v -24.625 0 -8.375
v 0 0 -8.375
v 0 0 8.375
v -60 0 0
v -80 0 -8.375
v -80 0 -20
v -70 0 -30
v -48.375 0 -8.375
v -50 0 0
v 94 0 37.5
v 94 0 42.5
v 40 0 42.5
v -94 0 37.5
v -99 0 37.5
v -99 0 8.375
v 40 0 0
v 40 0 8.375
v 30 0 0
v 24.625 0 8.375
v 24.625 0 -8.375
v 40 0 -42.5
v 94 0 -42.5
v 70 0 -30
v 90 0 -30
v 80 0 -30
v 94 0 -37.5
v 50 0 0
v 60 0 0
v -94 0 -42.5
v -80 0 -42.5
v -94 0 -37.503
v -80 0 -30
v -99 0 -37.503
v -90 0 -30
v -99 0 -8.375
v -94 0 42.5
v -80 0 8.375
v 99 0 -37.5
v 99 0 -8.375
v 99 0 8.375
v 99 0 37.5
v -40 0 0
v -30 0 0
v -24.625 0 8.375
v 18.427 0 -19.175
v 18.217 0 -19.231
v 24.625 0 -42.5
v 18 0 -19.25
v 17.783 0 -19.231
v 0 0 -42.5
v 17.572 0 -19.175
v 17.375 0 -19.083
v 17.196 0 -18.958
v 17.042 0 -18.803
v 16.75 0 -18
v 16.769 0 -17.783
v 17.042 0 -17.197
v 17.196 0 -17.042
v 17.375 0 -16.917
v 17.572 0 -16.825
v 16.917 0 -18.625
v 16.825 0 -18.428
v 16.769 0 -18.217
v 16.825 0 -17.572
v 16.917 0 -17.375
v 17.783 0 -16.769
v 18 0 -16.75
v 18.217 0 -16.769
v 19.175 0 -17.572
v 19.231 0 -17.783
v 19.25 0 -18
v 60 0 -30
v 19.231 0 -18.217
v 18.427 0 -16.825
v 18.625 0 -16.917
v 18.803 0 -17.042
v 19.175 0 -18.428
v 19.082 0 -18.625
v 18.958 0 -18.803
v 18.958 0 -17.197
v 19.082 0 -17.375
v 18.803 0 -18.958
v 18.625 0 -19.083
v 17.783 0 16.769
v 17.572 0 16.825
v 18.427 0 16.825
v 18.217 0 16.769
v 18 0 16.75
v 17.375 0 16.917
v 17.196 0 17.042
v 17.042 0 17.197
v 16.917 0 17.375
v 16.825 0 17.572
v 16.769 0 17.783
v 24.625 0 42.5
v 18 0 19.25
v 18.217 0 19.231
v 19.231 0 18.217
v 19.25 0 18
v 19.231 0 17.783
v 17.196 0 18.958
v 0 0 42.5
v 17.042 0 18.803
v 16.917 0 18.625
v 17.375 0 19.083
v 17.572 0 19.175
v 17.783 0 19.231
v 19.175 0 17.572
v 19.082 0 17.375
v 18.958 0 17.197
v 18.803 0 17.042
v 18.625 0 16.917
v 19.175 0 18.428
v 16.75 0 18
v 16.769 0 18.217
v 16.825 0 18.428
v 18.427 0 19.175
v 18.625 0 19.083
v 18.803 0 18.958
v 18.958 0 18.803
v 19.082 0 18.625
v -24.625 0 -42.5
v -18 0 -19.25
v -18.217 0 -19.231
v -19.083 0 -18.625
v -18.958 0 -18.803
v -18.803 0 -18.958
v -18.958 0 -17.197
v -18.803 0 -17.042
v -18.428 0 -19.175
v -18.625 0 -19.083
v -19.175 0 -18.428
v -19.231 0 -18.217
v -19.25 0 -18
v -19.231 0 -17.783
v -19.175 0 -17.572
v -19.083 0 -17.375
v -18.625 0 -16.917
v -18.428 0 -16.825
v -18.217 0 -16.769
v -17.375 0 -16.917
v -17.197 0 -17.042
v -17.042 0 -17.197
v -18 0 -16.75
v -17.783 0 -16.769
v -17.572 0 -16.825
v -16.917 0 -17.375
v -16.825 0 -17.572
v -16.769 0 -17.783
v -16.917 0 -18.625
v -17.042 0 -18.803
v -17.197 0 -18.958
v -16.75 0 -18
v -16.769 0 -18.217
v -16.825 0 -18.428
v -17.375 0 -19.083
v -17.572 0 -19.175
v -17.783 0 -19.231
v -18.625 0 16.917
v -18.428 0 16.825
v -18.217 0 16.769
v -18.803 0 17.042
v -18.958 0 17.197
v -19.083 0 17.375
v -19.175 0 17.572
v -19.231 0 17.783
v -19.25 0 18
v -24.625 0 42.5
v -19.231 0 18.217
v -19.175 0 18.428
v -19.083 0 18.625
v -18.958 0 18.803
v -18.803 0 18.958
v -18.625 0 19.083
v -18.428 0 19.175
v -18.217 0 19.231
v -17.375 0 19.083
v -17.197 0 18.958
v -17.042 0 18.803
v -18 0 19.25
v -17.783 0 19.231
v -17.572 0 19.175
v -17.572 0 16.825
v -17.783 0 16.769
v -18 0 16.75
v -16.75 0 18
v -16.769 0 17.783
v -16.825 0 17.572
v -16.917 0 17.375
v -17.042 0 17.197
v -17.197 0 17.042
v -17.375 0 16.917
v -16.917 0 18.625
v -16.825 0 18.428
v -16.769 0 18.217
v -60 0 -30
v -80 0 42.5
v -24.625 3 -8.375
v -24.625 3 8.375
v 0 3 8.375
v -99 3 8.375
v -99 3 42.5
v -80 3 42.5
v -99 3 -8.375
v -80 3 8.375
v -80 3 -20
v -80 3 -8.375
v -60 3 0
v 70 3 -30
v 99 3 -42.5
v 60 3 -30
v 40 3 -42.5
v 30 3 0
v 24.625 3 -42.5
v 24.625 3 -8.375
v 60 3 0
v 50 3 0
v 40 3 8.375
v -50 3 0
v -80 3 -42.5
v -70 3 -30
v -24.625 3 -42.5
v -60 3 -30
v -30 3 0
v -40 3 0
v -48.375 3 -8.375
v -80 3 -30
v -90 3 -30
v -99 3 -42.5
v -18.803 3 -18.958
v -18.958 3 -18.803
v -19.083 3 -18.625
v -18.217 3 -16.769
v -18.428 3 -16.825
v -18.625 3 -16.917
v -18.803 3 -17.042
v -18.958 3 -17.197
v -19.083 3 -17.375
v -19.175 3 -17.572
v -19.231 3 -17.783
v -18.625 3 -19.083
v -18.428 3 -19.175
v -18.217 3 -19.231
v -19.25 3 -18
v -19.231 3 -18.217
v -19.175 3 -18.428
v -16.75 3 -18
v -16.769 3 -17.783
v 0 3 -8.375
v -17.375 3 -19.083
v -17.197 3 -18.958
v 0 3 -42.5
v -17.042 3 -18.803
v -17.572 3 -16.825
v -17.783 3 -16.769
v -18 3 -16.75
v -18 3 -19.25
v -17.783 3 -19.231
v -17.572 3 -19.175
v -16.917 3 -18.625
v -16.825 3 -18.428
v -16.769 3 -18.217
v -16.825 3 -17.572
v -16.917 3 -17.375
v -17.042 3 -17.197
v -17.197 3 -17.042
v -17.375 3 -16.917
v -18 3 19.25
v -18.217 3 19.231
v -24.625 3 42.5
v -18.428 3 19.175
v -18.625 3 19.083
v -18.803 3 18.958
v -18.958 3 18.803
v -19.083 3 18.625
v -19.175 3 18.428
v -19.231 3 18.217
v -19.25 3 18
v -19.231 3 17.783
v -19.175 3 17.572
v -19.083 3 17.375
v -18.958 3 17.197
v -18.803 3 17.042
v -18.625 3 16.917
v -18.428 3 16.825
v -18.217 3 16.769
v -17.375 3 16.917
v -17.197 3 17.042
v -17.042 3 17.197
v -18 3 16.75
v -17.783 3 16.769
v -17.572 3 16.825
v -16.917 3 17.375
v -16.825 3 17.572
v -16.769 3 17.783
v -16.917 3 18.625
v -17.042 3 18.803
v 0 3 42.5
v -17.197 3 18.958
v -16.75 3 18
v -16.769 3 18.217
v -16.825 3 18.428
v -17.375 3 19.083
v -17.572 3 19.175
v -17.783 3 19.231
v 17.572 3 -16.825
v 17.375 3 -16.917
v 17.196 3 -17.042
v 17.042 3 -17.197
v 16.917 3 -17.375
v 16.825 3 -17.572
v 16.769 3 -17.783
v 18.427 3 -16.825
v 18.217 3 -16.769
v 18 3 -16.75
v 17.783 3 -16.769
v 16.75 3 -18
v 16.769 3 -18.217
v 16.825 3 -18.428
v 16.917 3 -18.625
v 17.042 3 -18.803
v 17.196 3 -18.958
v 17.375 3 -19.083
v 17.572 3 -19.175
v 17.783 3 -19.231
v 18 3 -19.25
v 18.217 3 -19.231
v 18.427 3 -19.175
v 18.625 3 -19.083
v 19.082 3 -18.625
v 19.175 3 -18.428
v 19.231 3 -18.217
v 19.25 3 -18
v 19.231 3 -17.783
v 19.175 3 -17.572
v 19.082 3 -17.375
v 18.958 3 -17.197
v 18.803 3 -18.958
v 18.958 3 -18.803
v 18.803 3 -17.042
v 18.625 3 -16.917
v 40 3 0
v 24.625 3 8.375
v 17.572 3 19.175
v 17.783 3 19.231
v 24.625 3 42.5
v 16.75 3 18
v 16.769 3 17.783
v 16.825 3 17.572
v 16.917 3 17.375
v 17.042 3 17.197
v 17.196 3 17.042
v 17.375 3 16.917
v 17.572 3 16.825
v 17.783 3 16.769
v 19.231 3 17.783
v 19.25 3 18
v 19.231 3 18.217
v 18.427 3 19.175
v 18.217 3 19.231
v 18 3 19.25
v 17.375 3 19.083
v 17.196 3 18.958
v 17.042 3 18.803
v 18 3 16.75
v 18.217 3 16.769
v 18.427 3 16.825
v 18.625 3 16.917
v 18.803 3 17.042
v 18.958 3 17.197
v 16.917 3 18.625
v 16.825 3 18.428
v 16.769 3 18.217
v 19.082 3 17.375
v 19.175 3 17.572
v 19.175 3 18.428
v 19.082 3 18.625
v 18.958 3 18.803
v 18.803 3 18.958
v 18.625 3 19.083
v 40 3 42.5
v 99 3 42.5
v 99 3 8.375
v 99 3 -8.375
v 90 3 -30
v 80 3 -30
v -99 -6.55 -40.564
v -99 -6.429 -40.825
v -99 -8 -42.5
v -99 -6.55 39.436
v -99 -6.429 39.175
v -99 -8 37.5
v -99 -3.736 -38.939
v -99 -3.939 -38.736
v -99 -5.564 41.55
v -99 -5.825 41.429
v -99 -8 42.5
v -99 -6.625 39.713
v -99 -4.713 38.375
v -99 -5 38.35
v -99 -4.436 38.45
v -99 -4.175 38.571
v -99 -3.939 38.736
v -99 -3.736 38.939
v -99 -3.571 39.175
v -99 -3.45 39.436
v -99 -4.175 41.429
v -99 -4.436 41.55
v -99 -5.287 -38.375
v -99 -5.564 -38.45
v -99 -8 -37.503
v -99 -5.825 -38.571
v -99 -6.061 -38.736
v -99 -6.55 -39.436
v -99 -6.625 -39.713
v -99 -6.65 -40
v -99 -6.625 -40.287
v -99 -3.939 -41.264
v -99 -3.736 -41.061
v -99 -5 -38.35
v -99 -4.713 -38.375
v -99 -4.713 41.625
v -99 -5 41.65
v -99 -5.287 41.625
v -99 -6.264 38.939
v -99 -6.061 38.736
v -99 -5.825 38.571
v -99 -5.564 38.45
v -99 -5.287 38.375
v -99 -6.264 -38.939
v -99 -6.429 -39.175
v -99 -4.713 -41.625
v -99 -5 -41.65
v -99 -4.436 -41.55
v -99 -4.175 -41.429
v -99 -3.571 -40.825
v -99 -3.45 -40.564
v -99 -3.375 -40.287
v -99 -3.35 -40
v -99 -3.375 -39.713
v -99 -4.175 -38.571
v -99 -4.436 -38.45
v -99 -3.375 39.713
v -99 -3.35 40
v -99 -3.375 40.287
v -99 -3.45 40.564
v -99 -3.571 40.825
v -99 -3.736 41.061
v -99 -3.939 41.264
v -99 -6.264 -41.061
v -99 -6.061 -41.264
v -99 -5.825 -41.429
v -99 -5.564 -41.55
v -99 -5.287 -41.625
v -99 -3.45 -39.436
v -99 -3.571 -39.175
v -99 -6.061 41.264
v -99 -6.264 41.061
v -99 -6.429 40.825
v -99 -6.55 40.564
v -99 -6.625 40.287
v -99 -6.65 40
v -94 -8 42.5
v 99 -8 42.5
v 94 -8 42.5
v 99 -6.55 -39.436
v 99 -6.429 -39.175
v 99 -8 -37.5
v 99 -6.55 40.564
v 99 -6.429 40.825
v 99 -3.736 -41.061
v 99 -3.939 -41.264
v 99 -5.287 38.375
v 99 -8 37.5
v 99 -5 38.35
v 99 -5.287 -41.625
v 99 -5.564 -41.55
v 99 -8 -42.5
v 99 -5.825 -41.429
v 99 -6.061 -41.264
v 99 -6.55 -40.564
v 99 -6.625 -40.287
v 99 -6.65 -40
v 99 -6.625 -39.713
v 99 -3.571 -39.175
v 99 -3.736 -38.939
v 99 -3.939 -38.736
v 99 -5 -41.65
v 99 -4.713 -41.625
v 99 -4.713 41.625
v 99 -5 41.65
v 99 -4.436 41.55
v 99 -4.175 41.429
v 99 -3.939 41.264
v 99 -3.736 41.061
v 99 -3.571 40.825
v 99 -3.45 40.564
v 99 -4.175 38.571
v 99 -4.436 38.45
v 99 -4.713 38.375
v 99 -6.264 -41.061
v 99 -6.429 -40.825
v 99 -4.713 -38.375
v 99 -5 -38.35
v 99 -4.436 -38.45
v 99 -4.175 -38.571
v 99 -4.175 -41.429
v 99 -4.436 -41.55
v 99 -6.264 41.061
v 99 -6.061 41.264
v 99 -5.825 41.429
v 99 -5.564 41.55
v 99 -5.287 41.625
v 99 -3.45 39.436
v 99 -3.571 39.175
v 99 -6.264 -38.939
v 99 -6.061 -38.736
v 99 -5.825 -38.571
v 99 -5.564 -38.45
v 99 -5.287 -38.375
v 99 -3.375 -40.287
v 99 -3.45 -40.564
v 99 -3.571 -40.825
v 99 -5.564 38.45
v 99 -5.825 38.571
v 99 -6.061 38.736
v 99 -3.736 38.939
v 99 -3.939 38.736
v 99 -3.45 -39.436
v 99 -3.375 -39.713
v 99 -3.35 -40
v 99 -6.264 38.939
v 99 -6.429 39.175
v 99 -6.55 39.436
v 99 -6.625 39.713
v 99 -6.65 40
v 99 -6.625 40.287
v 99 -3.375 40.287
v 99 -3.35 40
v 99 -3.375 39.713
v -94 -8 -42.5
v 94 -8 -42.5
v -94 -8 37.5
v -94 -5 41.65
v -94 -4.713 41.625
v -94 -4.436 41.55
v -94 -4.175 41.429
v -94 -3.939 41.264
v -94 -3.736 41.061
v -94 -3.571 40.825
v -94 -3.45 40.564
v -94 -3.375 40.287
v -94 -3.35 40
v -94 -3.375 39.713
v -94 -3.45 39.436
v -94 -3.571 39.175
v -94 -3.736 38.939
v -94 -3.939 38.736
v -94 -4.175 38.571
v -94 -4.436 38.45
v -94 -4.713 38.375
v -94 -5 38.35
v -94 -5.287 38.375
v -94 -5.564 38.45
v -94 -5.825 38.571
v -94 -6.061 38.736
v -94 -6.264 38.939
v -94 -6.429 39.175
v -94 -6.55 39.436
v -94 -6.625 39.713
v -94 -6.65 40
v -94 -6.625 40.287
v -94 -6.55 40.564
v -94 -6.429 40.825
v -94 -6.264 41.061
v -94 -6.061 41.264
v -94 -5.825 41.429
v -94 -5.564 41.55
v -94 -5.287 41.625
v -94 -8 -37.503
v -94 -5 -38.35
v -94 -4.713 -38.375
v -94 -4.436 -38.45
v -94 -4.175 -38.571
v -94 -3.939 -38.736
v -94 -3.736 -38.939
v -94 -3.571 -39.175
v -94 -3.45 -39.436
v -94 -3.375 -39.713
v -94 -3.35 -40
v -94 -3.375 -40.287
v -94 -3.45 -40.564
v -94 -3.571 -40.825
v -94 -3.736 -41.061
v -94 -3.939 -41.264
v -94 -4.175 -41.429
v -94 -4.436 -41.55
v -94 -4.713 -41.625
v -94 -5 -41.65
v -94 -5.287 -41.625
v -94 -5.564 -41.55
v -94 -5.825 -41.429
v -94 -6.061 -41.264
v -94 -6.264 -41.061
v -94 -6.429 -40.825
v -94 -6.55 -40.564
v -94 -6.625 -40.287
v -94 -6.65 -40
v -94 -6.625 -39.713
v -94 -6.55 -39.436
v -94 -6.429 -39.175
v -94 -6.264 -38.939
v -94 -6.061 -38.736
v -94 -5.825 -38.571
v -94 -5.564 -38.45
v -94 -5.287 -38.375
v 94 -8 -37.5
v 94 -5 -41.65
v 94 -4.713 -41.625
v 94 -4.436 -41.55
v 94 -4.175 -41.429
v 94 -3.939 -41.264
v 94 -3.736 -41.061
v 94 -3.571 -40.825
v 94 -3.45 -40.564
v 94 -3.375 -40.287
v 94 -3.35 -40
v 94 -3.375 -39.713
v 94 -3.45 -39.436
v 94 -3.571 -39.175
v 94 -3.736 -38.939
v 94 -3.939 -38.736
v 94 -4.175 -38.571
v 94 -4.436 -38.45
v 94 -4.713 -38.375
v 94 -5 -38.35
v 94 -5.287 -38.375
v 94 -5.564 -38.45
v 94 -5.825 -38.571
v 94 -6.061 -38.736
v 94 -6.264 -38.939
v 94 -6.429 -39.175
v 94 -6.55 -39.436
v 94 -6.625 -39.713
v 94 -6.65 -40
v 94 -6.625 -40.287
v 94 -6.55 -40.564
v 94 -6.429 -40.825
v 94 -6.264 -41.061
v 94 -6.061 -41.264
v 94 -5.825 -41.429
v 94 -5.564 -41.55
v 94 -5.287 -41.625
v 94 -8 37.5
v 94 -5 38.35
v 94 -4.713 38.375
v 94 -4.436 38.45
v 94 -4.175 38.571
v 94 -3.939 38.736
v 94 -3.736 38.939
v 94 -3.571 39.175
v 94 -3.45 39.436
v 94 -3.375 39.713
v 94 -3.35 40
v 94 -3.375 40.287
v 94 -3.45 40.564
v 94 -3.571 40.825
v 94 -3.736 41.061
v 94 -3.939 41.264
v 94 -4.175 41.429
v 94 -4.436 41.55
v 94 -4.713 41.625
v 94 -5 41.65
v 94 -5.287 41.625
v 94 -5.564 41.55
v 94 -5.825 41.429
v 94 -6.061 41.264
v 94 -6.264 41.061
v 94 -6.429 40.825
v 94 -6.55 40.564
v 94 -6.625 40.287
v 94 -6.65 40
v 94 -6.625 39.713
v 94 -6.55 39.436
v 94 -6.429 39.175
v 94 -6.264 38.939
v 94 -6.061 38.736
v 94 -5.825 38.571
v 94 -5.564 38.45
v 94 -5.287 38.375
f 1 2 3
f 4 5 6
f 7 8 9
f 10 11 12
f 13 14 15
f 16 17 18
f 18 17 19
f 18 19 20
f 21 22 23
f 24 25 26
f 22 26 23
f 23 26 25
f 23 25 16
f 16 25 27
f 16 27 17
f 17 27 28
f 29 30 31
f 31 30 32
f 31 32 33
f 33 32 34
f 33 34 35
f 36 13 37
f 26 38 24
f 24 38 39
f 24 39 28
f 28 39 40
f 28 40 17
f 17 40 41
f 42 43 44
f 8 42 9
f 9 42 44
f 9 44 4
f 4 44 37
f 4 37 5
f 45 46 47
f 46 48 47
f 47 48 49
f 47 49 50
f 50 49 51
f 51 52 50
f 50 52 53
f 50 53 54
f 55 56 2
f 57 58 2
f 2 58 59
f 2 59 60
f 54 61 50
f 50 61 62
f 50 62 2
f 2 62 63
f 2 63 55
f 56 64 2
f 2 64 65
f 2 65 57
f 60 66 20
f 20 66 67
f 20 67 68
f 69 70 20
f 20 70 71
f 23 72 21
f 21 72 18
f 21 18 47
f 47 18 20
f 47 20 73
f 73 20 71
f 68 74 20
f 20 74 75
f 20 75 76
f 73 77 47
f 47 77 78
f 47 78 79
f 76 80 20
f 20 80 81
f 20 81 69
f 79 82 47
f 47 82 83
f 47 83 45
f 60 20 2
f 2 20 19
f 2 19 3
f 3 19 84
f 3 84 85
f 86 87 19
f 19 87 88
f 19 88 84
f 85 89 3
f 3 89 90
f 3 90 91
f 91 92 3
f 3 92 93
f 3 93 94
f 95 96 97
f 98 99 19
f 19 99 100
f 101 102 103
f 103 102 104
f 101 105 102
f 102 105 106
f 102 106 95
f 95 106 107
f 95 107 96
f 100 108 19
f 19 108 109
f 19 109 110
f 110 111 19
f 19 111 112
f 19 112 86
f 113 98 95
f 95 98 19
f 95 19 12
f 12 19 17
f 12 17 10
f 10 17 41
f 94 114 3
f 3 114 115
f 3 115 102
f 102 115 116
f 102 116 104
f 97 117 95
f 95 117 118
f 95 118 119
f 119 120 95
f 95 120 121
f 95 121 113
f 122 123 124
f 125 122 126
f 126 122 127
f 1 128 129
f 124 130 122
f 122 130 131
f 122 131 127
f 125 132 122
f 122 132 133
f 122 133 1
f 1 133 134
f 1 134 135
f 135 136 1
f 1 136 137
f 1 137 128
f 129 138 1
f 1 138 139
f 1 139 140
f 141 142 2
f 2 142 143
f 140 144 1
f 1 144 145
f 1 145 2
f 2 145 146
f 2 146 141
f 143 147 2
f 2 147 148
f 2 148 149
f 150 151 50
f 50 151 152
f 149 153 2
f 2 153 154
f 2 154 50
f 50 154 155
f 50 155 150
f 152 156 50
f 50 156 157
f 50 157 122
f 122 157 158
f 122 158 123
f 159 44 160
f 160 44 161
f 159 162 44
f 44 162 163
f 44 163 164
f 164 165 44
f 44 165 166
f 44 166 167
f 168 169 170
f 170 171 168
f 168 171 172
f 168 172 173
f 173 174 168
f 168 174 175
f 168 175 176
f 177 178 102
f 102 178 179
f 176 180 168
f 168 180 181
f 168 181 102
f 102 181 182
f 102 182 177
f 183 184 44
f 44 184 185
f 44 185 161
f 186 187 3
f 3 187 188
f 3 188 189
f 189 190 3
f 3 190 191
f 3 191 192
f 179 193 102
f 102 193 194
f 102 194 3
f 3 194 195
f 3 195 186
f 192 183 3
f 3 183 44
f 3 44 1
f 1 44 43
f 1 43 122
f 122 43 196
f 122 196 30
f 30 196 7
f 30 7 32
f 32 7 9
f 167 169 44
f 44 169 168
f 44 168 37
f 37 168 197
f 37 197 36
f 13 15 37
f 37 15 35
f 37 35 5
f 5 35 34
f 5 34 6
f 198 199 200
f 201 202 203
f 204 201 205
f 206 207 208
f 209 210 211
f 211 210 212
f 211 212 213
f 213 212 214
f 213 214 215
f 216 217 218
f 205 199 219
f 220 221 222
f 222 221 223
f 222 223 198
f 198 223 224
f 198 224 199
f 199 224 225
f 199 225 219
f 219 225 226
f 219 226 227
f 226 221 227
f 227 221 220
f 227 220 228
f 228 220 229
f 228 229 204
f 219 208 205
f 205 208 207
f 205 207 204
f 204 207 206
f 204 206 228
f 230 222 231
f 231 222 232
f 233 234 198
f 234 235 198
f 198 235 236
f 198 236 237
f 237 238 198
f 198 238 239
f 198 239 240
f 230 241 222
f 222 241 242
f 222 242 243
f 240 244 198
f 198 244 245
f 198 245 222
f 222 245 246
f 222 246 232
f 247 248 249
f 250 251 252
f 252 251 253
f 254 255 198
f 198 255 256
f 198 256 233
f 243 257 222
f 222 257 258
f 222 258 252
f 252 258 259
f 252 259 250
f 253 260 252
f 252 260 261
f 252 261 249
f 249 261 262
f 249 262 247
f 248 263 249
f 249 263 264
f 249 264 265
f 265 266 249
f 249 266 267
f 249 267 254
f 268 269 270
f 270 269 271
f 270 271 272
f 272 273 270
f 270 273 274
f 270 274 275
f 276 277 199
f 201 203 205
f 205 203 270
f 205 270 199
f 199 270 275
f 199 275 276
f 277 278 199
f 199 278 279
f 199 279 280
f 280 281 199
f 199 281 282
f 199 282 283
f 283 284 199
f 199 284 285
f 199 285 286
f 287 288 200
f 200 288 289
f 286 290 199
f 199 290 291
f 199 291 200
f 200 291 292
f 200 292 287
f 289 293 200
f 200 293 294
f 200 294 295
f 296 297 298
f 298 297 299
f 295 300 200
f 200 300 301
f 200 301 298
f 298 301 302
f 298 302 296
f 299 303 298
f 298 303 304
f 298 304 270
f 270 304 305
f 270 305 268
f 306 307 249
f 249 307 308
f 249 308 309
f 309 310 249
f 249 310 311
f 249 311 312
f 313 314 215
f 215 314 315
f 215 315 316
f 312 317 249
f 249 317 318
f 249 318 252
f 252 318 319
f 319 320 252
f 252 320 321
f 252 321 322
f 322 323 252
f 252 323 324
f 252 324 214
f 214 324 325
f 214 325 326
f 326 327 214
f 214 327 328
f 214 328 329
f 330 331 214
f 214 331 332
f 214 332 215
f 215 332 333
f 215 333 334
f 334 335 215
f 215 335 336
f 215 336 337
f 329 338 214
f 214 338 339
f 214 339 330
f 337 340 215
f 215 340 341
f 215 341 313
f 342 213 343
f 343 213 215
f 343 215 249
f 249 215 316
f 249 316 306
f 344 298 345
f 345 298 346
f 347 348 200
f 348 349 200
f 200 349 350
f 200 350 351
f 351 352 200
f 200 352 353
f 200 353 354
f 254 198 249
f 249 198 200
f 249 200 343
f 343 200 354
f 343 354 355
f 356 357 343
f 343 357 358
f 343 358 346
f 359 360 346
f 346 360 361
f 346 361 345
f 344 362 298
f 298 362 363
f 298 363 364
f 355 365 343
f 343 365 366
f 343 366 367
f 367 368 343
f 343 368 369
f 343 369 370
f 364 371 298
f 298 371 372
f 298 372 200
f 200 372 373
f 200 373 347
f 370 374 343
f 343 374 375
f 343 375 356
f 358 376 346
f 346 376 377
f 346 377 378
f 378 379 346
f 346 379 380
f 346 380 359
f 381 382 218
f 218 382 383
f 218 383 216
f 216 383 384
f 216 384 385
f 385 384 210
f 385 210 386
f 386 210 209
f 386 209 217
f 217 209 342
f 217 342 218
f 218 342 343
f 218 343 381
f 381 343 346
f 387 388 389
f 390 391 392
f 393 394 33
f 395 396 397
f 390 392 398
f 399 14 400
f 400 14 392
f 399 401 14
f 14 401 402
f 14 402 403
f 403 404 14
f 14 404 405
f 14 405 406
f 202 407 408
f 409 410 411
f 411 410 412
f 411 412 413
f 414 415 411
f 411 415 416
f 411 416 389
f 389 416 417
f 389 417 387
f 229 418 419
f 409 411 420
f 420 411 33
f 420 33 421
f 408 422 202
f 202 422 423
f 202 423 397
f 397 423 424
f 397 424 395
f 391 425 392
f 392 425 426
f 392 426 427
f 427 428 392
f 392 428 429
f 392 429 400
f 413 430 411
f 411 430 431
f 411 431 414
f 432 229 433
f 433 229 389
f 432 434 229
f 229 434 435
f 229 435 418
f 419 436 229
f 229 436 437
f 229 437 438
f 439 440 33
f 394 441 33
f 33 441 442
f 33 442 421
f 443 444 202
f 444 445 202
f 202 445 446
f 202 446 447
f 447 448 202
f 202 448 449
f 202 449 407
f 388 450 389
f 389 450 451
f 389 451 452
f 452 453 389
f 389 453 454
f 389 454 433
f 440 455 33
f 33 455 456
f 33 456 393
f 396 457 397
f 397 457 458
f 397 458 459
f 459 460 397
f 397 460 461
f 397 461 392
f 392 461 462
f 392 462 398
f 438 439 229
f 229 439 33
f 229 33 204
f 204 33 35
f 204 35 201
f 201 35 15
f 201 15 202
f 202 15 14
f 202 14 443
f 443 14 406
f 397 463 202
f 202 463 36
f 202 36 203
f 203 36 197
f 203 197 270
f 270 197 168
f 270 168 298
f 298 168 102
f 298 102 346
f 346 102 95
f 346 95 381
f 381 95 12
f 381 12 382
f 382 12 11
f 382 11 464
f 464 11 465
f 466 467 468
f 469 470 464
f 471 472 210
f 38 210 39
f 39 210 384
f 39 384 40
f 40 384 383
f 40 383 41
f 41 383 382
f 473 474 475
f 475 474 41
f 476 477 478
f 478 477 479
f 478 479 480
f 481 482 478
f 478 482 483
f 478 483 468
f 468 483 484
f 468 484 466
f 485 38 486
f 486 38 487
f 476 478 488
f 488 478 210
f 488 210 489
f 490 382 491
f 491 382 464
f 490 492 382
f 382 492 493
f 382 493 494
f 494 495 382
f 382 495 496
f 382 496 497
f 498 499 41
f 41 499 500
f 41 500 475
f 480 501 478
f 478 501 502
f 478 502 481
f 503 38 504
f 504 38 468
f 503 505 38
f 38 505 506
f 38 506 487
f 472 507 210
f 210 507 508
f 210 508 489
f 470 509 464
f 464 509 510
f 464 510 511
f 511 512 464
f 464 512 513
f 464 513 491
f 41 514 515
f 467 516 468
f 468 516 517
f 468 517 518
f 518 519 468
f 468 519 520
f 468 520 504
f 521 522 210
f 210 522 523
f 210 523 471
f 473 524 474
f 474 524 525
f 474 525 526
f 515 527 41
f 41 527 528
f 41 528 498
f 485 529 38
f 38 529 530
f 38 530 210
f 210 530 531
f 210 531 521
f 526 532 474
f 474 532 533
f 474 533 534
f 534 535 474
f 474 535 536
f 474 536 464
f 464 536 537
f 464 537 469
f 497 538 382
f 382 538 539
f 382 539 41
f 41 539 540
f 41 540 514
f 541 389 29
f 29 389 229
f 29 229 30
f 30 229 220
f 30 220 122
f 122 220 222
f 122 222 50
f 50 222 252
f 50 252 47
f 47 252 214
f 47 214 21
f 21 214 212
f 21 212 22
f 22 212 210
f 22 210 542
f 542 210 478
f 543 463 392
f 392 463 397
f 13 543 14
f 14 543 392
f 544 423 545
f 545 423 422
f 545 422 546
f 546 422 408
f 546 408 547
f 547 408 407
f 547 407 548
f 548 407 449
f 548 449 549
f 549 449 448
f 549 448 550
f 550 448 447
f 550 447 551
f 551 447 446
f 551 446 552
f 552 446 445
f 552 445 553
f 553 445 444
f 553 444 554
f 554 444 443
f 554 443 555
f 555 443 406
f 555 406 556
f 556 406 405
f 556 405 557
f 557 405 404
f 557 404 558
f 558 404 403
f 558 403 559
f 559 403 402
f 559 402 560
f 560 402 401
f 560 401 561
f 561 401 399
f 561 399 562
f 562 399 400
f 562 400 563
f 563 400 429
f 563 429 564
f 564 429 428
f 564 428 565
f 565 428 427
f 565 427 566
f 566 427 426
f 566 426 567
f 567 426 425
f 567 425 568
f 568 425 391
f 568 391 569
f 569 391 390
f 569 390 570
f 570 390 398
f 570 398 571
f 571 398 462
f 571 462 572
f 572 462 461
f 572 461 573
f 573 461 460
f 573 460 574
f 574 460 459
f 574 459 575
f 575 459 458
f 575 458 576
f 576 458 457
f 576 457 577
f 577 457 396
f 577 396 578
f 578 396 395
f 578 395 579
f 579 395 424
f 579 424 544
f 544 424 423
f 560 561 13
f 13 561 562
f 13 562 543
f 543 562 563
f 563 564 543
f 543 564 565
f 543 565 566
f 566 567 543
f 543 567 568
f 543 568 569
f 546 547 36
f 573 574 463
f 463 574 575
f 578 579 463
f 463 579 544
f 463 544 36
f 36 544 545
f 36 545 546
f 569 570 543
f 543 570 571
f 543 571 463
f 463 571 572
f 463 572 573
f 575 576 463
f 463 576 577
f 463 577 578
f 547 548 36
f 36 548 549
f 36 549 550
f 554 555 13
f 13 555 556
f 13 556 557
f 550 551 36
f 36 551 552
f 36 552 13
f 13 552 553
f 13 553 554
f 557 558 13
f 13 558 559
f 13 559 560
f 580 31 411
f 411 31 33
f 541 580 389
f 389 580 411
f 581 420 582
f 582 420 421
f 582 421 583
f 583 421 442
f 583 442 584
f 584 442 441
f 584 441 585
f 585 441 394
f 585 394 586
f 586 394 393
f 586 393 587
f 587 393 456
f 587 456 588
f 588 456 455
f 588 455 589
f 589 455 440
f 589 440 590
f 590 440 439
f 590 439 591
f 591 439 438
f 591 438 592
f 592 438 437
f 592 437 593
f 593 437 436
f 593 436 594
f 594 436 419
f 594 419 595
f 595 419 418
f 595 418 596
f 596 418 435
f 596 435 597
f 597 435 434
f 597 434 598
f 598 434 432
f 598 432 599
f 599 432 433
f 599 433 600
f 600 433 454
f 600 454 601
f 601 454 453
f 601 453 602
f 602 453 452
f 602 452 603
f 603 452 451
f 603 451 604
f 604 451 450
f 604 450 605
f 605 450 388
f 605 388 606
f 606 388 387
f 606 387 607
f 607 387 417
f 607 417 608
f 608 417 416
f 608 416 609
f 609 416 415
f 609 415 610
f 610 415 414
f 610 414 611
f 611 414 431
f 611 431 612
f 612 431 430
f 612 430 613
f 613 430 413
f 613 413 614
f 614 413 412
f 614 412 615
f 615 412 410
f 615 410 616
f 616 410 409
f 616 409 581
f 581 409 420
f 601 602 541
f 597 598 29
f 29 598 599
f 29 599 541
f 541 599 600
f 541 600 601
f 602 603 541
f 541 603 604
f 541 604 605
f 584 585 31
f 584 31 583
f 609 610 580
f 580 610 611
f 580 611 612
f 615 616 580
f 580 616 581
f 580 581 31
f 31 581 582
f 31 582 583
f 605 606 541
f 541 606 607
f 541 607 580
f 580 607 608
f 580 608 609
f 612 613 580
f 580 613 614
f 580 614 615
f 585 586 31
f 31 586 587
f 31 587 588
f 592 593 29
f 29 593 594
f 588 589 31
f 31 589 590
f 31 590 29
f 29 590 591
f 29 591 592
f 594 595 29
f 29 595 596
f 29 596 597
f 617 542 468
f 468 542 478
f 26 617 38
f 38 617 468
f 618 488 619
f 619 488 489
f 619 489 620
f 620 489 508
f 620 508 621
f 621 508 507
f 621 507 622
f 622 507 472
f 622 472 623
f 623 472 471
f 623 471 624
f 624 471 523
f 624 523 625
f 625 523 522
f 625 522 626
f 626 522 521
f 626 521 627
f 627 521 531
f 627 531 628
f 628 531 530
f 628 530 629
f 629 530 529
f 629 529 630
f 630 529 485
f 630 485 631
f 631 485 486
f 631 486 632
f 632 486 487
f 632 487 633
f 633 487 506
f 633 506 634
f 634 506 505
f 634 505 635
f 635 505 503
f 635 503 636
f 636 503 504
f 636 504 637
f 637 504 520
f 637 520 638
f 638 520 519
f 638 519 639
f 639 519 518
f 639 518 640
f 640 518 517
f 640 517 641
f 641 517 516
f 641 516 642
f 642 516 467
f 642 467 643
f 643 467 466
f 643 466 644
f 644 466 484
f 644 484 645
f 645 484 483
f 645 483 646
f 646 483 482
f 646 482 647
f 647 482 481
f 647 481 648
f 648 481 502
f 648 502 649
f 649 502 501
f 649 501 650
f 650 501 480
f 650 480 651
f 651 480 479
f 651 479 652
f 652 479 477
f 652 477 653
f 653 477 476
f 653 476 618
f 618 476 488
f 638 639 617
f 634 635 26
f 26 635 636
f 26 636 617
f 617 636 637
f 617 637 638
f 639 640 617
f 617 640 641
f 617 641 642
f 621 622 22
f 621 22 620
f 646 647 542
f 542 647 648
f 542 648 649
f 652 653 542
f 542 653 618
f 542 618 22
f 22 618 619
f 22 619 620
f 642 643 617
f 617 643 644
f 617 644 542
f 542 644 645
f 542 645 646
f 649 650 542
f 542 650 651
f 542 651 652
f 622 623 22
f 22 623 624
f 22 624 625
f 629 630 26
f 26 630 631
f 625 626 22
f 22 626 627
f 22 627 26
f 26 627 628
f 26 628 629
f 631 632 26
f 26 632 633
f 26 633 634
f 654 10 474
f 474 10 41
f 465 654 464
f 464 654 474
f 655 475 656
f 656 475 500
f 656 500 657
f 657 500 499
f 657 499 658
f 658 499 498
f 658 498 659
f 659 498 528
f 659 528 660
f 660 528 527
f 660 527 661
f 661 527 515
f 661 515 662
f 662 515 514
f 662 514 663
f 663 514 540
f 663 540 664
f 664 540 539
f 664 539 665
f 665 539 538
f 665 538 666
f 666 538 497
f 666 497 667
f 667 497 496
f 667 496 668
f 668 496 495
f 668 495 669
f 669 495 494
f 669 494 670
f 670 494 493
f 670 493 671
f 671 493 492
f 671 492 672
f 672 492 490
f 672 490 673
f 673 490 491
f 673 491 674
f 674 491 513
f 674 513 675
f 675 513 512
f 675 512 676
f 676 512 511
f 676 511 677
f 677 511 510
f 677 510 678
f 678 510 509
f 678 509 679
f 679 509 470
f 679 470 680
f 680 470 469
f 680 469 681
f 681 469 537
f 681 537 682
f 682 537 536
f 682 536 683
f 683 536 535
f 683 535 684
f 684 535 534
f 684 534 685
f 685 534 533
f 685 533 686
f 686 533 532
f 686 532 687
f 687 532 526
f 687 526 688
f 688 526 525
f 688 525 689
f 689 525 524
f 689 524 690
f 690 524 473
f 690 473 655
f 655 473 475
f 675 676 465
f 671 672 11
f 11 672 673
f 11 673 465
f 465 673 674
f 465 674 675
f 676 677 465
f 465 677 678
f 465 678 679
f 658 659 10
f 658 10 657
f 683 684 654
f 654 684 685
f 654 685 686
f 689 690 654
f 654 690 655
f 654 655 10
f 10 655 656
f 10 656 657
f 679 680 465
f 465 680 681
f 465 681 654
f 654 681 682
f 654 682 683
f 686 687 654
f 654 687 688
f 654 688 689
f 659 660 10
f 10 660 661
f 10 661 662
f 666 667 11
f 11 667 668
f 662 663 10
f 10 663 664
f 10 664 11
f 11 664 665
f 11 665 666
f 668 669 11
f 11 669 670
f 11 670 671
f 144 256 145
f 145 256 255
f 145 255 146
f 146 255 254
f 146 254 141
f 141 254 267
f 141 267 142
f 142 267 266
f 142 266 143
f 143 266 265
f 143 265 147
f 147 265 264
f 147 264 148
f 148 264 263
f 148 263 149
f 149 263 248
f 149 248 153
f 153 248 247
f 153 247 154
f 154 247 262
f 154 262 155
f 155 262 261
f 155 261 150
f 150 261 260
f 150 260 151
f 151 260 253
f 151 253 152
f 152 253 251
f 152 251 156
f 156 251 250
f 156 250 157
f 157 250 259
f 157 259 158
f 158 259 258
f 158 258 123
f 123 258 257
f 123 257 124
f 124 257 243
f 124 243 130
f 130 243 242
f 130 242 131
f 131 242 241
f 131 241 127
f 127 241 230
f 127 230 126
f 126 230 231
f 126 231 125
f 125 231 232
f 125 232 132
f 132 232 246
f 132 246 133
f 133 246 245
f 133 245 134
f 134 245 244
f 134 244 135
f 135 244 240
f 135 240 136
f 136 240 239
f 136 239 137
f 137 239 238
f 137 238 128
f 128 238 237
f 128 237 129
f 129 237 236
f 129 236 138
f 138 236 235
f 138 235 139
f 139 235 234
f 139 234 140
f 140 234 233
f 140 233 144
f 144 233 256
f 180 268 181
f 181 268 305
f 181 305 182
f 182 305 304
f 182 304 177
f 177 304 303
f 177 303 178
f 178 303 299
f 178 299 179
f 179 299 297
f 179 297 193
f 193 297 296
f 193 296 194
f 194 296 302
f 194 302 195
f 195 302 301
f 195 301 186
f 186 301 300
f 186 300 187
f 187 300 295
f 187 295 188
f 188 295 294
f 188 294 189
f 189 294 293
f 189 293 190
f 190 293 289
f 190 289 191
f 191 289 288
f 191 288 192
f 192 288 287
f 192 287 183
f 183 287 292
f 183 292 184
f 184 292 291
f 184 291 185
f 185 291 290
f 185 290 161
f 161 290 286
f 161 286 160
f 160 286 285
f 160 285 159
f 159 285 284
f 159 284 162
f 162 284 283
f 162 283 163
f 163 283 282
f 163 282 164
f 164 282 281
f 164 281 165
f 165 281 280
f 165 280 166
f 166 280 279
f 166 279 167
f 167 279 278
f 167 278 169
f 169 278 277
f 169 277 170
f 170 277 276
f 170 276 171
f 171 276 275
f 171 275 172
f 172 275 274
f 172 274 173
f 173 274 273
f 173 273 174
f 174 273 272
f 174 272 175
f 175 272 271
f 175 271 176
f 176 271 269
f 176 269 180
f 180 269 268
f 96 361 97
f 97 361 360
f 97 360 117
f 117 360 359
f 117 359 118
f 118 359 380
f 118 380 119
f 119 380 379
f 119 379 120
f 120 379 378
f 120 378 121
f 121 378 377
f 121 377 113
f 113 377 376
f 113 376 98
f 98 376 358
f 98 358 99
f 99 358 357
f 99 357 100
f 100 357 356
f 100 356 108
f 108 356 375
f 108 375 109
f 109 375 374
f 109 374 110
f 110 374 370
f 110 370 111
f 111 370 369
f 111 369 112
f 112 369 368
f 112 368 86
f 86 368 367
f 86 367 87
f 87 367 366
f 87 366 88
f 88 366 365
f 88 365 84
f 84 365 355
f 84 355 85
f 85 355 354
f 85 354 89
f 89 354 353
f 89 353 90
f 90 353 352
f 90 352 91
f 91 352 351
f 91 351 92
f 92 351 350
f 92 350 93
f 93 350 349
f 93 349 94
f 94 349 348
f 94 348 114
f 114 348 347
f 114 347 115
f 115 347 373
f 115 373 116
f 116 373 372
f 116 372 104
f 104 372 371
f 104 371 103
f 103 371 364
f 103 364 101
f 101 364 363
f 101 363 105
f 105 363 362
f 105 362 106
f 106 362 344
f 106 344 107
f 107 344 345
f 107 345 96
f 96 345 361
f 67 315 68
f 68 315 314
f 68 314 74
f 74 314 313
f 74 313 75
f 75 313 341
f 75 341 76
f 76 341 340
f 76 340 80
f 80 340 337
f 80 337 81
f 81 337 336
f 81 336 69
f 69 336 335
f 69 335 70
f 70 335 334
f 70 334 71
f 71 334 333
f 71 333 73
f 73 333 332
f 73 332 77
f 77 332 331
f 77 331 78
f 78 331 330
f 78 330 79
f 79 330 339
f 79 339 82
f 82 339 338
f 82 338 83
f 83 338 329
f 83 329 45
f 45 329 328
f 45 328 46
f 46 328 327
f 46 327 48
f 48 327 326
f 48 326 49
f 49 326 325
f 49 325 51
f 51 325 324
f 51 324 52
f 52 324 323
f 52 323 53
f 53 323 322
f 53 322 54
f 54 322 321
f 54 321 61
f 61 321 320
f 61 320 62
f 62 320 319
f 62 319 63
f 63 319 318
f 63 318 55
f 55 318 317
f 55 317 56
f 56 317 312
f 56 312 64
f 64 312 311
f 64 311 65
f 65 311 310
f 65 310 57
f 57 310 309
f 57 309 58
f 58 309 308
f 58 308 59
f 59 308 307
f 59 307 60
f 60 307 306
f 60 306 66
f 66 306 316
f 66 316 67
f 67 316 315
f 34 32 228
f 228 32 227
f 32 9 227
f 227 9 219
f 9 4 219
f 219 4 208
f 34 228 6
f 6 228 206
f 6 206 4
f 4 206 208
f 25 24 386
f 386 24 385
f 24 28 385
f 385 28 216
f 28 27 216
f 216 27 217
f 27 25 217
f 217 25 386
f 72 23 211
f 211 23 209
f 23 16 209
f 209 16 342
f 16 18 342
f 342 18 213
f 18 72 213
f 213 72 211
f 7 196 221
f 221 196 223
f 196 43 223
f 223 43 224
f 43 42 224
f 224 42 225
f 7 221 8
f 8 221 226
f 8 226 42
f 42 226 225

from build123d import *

# Parameters (mm, degrees)
SKETCH_1_W          = 198
SKETCH_1_H          = 85
EXTRUDE_1_DEPTH     = 3
SKETCH_3_W          = 4.997331483
SKETCH_3_H          = 8
SKETCH_3_R          = 1.65
SKETCH_3_W_2        = 5
EXTRUDE_2_DEPTH     = 5
SKETCH_4_W          = 5
SKETCH_4_H          = 8
SKETCH_4_R          = 1.65
EXTRUDE_3_DEPTH     = 5
SKETCH_5_R          = 1.25
CUT_EXTRUDE_1_DEPTH = 10
CUT_EXTRUDE_2_DEPTH = 3


with BuildPart() as part:
    # 草图1 → 凸台-拉伸1 (new body)
    with BuildSketch(Plane(origin=(0, 0, 0), x_dir=(1, 0, 0), z_dir=(0, 1, 0))):
        Rectangle(SKETCH_1_W, SKETCH_1_H)
    extrude(amount=EXTRUDE_1_DEPTH)

    # 草图3 → 凸台-拉伸2 (add)
    with BuildSketch(Plane.ZY.offset(99)):
        with Locations((-40.001334259, -4)):
            Rectangle(SKETCH_3_W, SKETCH_3_H)
        with Locations((-40, -5)):
            Circle(SKETCH_3_R, mode=Mode.SUBTRACT)
        with Locations((40, -4)):
            Rectangle(SKETCH_3_W_2, SKETCH_3_H)
        with Locations((40, -5)):
            Circle(SKETCH_3_R, mode=Mode.SUBTRACT)
    extrude(amount=-EXTRUDE_2_DEPTH)

    # 草图4 → 凸台-拉伸3 (add)
    with BuildSketch(Plane(origin=(99, 0, 0), x_dir=(0, 0, -1), z_dir=(1, 0, 0))):
        with Locations((-40, -4)):
            Rectangle(SKETCH_4_W, SKETCH_4_H)
        with Locations((-40, -5)):
            Circle(SKETCH_4_R, mode=Mode.SUBTRACT)
        with Locations((40, -4)):
            Rectangle(SKETCH_4_W, SKETCH_4_H)
        with Locations((40, -5)):
            Circle(SKETCH_4_R, mode=Mode.SUBTRACT)
    extrude(amount=-EXTRUDE_3_DEPTH)

    # 草图5 → 切除-拉伸1 (cut)
    with BuildSketch(Plane(origin=(0, 3, 0), x_dir=(1, 0, 0), z_dir=(0, 1, 0))):
        with Locations((-18, 18)):
            Circle(SKETCH_5_R)
        with Locations((-18, -18)):
            Circle(SKETCH_5_R)
        with Locations((18, -18)):
            Circle(SKETCH_5_R)
        with Locations((18, 18)):
            Circle(SKETCH_5_R)
    extrude(amount=-CUT_EXTRUDE_1_DEPTH, mode=Mode.SUBTRACT)

    # 草图6 → 切除-拉伸2 (cut)
    with BuildSketch(Plane(origin=(0, 3, 0), x_dir=(1, 0, 0), z_dir=(0, 1, 0))):
        Polygon((60, 30), (70, 30), (40, 0), (30, 0), align=None)
        Polygon((-40, 0), (-30, 0), (-60, 30), (-70, 30), align=None)
        Polygon((-60, 0), (-50, 0), (-80, 30), (-90, 30), align=None)
        Polygon((80, 30), (90, 30), (60, 0), (50, 0), align=None)
    extrude(amount=-CUT_EXTRUDE_2_DEPTH, mode=Mode.SUBTRACT)


solid = part.part
